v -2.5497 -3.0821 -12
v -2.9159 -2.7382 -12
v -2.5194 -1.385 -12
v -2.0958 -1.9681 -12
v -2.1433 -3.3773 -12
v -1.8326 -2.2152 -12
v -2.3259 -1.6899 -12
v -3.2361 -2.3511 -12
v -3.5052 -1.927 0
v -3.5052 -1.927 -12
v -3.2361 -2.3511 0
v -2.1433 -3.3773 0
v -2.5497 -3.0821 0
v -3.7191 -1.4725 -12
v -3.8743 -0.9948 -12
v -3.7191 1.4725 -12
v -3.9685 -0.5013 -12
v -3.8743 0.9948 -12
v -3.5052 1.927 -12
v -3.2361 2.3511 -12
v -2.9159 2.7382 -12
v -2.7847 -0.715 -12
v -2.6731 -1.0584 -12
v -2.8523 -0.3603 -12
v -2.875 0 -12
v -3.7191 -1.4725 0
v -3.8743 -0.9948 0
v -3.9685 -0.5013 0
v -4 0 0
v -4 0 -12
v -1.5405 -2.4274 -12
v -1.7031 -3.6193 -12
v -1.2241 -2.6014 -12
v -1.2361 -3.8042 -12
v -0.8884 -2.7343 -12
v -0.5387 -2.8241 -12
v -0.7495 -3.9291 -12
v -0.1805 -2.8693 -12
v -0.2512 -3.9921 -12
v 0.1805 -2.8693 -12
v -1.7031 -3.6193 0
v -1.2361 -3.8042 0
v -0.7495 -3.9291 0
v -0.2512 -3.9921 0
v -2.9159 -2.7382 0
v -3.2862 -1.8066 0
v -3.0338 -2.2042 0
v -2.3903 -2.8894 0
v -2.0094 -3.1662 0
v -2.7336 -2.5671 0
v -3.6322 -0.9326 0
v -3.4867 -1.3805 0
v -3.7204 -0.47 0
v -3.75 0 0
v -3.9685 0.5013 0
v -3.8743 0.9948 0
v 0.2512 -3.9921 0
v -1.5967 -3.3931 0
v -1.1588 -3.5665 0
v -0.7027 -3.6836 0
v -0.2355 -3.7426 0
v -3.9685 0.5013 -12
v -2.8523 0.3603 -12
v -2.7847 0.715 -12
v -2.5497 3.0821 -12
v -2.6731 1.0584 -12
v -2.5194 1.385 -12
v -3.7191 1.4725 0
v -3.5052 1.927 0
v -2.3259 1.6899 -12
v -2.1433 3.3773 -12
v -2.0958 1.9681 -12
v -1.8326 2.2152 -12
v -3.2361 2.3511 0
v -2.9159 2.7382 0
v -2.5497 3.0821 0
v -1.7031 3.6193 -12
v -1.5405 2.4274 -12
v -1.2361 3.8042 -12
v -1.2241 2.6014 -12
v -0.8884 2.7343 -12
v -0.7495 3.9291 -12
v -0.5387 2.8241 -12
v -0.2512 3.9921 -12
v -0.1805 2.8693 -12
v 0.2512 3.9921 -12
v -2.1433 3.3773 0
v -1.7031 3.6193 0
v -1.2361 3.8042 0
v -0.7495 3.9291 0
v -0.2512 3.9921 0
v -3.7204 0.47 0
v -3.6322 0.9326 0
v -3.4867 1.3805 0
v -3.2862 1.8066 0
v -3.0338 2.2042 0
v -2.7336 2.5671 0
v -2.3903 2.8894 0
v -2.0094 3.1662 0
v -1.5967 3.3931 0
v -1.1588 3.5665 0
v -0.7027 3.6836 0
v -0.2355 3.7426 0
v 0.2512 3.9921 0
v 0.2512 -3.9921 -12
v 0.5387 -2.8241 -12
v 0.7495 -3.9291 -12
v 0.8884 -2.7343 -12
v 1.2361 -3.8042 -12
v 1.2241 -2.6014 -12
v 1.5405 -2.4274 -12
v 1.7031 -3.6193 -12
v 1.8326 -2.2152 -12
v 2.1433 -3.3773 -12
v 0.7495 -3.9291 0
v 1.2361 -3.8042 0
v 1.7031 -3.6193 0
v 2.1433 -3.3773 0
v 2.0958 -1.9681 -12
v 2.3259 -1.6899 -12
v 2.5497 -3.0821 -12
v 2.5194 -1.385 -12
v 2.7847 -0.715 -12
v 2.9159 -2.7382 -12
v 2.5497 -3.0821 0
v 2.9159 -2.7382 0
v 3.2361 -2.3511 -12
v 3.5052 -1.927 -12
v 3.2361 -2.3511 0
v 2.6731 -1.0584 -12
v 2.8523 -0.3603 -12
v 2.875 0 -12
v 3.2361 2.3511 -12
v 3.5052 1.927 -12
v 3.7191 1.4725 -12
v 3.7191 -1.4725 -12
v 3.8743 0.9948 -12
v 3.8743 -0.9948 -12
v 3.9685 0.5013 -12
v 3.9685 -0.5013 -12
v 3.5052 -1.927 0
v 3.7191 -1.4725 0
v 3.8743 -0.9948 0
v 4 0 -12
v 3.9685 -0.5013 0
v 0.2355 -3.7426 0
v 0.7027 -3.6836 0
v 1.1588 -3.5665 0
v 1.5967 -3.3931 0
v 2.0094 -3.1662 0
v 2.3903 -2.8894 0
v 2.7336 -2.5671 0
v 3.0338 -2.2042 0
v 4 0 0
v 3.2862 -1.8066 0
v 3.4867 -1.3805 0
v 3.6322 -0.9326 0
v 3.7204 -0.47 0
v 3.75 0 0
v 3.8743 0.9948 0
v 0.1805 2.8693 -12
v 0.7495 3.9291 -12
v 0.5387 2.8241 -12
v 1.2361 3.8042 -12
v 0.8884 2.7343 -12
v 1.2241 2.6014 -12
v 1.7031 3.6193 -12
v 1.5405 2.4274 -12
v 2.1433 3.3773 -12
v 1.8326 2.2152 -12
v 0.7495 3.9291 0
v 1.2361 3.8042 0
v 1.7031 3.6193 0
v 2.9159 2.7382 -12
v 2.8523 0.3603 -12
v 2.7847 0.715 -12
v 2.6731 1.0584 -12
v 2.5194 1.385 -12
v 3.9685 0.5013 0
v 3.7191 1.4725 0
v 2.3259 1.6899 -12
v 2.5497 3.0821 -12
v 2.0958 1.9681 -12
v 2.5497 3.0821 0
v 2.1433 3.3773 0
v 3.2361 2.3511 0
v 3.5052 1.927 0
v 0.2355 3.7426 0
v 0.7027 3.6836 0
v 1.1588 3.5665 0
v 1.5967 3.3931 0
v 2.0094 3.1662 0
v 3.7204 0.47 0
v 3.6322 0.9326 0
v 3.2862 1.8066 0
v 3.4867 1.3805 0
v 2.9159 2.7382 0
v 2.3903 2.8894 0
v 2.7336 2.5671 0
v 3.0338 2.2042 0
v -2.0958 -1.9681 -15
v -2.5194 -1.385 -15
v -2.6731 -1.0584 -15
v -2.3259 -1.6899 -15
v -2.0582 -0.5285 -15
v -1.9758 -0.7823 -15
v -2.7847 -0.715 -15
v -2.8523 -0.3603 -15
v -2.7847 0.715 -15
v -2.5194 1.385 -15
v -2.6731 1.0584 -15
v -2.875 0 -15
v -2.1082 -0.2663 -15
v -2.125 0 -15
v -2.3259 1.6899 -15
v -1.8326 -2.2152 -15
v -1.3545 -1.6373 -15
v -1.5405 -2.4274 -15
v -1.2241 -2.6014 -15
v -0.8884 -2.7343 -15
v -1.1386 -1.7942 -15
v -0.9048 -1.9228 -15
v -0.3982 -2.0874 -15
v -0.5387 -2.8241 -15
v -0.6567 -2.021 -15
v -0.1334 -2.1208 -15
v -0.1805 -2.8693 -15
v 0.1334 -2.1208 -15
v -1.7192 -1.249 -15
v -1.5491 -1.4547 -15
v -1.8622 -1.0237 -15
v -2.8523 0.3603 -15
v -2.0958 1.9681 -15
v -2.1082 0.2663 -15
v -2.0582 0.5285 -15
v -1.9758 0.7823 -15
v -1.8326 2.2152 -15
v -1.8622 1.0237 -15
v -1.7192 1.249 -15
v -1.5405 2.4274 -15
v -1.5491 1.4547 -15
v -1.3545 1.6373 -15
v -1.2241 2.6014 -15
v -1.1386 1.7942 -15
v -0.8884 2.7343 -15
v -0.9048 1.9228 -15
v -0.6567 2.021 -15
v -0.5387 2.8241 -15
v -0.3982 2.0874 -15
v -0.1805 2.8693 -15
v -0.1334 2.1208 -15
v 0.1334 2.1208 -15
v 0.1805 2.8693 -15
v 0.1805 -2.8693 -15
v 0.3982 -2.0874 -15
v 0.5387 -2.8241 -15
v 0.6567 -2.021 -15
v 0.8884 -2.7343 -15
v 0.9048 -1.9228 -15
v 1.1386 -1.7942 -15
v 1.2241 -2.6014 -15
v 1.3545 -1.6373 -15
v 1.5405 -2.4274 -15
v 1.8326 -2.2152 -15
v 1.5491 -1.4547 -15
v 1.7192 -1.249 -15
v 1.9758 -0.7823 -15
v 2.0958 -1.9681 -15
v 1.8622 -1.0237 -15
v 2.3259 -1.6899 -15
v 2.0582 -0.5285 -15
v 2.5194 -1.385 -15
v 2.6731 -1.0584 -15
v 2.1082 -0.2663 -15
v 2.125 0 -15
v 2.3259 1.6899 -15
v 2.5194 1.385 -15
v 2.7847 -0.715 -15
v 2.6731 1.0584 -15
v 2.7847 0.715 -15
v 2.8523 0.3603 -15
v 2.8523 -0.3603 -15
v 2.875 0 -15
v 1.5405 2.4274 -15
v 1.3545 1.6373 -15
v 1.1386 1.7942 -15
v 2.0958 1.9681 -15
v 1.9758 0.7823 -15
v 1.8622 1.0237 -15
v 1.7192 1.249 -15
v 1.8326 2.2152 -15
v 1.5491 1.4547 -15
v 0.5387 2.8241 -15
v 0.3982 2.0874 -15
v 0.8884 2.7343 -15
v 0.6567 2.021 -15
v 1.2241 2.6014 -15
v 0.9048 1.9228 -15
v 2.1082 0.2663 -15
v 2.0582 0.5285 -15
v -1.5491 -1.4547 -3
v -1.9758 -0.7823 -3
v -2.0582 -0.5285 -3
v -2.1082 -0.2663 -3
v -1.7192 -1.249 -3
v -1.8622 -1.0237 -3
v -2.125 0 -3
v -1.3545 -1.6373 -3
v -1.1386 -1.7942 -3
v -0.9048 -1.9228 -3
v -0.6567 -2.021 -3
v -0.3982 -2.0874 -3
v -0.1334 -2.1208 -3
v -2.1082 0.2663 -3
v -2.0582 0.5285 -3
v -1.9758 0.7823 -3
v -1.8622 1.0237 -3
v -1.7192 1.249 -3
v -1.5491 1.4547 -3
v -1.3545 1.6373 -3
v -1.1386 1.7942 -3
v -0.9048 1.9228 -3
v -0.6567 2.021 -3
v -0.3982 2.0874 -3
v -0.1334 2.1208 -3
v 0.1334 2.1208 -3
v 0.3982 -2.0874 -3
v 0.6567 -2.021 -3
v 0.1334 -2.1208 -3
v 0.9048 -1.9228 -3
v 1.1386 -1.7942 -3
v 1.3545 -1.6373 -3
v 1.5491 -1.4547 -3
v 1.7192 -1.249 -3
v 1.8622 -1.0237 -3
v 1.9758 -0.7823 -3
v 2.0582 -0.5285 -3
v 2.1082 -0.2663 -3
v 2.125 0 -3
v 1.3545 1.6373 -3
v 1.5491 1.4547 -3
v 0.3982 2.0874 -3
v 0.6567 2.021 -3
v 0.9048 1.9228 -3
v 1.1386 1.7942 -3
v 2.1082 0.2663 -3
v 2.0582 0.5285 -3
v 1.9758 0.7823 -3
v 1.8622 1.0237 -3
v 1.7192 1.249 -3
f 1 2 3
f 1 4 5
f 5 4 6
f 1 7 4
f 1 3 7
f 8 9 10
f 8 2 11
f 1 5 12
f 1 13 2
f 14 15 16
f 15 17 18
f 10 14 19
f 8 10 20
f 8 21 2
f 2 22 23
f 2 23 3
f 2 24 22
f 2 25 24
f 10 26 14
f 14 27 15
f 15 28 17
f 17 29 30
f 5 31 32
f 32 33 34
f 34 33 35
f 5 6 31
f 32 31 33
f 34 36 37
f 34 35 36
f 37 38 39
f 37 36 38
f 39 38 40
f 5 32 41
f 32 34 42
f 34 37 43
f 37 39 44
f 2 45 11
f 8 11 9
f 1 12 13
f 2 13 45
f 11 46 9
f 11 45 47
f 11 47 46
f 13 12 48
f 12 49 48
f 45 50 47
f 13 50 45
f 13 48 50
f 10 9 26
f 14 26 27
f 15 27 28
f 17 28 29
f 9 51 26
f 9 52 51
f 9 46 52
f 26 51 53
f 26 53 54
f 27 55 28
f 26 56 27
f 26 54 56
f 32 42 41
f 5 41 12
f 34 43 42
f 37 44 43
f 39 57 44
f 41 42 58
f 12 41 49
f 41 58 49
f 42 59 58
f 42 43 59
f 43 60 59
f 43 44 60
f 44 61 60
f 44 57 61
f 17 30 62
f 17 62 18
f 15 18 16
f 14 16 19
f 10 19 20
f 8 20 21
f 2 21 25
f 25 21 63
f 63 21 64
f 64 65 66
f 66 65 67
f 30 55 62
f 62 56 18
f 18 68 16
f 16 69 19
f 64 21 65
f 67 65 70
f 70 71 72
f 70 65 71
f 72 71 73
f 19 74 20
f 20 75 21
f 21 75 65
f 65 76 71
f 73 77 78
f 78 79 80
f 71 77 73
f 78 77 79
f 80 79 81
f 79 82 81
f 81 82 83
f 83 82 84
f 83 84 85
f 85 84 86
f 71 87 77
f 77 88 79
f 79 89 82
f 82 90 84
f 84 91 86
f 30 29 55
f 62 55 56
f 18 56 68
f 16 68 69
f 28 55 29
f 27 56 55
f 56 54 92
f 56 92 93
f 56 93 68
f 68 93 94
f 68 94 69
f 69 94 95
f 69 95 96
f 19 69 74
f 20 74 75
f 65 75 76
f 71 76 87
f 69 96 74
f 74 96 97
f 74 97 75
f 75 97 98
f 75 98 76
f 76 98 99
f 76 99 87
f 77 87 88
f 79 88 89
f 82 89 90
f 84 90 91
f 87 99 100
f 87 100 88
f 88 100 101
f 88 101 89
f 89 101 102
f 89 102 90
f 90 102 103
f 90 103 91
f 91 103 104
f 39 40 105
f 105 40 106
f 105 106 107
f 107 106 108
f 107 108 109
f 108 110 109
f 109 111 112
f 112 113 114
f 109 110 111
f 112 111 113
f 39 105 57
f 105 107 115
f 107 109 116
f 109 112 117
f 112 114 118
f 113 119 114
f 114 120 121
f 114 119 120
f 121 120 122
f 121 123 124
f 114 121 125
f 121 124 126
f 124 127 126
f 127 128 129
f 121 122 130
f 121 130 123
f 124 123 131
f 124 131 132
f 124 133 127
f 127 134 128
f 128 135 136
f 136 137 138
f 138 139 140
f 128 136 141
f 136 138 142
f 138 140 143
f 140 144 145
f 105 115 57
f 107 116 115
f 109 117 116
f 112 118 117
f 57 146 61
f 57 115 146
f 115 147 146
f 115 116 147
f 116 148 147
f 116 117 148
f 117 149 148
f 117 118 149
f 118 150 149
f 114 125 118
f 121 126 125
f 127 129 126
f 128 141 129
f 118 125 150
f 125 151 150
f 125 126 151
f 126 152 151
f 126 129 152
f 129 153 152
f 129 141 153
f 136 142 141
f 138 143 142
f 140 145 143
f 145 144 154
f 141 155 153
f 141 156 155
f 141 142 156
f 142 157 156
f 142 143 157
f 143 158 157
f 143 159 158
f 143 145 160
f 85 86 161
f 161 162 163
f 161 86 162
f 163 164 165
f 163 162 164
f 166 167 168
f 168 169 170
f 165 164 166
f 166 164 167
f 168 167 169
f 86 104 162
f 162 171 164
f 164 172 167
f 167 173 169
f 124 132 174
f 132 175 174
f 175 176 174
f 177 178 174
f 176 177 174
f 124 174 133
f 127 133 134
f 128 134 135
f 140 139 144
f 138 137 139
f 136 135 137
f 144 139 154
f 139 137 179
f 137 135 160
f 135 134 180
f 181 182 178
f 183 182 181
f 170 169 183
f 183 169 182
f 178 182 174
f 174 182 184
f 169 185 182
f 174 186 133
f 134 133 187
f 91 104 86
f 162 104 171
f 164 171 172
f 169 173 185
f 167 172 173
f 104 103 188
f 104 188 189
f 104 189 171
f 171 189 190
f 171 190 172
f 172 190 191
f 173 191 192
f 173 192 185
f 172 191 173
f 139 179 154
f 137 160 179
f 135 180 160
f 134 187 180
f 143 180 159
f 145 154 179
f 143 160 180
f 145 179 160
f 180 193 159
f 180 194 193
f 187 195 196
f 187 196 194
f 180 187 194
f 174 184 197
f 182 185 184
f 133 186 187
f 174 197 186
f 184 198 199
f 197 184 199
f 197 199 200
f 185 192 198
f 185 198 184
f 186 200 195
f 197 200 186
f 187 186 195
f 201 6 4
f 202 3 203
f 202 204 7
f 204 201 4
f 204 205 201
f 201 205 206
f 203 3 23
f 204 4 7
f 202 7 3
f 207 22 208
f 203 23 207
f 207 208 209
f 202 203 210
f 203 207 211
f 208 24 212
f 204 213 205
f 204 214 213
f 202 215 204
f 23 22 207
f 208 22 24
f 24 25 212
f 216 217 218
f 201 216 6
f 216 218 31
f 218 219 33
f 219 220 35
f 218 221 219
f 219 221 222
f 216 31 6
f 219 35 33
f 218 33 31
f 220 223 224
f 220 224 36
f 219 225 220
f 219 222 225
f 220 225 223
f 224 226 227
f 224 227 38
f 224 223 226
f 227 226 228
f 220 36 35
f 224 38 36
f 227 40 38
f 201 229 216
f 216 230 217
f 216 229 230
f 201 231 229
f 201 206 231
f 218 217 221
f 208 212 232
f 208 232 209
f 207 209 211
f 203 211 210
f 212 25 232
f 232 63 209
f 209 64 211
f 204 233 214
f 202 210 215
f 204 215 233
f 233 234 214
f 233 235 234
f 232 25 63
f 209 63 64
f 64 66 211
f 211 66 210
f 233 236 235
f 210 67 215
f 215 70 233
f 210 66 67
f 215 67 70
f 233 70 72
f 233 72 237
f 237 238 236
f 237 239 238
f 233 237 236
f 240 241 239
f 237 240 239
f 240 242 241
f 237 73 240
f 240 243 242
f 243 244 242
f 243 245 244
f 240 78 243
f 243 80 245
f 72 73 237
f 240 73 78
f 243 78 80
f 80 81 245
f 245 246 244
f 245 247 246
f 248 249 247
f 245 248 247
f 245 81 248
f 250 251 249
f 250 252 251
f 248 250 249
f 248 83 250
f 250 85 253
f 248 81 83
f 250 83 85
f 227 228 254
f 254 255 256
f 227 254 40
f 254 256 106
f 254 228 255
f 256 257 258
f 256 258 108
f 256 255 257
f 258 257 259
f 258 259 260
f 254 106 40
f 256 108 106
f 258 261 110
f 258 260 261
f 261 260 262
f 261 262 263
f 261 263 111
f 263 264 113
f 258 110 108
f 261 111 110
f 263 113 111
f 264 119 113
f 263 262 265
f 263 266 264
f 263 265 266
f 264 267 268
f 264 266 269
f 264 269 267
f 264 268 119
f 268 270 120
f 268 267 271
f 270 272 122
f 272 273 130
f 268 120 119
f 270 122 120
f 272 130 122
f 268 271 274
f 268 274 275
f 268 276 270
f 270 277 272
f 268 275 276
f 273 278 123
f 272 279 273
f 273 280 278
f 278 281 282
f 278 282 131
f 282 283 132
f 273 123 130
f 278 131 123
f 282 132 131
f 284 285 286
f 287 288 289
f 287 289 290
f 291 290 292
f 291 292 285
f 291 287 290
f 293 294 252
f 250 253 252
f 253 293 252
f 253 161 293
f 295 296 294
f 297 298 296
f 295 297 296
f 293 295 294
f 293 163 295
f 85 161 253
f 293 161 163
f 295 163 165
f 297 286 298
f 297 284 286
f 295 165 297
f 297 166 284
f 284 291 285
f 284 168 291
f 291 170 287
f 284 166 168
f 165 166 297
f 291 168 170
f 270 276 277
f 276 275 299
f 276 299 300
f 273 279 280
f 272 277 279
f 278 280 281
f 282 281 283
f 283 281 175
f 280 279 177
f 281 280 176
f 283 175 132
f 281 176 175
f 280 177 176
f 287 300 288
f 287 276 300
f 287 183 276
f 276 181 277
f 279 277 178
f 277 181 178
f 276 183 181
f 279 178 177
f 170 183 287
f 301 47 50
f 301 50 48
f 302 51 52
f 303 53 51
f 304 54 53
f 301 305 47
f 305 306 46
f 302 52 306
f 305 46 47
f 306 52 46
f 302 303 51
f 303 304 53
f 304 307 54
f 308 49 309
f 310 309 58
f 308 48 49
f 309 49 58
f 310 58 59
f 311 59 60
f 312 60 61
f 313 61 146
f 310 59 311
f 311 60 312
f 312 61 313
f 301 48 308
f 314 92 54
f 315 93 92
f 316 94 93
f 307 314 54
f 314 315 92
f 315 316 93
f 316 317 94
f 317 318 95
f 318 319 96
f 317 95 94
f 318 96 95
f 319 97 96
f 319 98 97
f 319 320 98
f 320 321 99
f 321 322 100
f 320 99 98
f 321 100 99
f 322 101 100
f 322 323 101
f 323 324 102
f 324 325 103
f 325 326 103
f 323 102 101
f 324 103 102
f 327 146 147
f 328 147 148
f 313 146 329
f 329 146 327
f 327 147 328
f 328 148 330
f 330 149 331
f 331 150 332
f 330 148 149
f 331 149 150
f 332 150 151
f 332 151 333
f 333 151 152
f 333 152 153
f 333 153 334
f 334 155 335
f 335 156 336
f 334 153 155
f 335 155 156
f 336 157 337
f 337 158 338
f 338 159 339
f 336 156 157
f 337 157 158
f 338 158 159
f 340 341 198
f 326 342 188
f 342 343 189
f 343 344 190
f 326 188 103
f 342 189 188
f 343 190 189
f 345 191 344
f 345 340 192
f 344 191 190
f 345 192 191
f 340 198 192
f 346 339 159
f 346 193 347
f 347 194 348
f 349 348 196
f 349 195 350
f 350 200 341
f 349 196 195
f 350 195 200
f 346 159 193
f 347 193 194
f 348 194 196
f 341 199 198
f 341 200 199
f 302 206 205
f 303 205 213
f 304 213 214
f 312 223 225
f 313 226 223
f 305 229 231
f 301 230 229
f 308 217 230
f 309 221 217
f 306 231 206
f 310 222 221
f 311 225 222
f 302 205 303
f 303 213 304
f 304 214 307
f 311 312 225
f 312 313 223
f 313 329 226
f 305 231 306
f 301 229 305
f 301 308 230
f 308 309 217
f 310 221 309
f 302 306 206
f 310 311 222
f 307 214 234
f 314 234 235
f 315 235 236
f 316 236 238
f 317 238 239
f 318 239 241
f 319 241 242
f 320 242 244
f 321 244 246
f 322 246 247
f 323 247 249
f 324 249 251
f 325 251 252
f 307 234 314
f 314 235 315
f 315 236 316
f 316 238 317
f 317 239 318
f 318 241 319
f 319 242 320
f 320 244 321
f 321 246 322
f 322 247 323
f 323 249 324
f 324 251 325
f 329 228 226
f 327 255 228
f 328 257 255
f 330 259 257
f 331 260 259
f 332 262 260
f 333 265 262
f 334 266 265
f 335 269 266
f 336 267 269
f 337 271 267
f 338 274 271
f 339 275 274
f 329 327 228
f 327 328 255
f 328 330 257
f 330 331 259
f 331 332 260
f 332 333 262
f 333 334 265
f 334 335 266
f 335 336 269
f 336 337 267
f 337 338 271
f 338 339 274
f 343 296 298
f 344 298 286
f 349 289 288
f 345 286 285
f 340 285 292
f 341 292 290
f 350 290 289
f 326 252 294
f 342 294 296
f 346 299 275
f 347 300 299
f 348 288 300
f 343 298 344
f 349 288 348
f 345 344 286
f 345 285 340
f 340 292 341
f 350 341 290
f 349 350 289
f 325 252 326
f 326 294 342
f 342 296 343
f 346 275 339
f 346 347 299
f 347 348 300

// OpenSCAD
$fn = 50;

difference() {
	union() {
		translate(v = [0, 0, -12.0]) {
			cylinder(h = 12, r = 4.0);
		}
		#translate(v = [0, 0, -15.0]) {
			cylinder(h = 15, r = 2.875);
		}
	}
	union() {
		translate(v = [0, 0, 0]) {
			rotate(a = [0, 0, 0]) {
				difference() {
					union() {
						translate(v = [0, 0, -15.0]) {
							cylinder(h = 15, r = 2.0);
						}
						translate(v = [0, 0, -3]) {
							cylinder(h = 3, r1 = 2.125, r2 = 3.75);
						}
						translate(v = [0, 0, -15.0]) {
							cylinder(h = 15, r = 2.125);
						}
						translate(v = [0, 0, -15.0]) {
							cylinder(h = 15, r = 2.0);
						}
					}
					union();
				}
			}
		}
	}
}
